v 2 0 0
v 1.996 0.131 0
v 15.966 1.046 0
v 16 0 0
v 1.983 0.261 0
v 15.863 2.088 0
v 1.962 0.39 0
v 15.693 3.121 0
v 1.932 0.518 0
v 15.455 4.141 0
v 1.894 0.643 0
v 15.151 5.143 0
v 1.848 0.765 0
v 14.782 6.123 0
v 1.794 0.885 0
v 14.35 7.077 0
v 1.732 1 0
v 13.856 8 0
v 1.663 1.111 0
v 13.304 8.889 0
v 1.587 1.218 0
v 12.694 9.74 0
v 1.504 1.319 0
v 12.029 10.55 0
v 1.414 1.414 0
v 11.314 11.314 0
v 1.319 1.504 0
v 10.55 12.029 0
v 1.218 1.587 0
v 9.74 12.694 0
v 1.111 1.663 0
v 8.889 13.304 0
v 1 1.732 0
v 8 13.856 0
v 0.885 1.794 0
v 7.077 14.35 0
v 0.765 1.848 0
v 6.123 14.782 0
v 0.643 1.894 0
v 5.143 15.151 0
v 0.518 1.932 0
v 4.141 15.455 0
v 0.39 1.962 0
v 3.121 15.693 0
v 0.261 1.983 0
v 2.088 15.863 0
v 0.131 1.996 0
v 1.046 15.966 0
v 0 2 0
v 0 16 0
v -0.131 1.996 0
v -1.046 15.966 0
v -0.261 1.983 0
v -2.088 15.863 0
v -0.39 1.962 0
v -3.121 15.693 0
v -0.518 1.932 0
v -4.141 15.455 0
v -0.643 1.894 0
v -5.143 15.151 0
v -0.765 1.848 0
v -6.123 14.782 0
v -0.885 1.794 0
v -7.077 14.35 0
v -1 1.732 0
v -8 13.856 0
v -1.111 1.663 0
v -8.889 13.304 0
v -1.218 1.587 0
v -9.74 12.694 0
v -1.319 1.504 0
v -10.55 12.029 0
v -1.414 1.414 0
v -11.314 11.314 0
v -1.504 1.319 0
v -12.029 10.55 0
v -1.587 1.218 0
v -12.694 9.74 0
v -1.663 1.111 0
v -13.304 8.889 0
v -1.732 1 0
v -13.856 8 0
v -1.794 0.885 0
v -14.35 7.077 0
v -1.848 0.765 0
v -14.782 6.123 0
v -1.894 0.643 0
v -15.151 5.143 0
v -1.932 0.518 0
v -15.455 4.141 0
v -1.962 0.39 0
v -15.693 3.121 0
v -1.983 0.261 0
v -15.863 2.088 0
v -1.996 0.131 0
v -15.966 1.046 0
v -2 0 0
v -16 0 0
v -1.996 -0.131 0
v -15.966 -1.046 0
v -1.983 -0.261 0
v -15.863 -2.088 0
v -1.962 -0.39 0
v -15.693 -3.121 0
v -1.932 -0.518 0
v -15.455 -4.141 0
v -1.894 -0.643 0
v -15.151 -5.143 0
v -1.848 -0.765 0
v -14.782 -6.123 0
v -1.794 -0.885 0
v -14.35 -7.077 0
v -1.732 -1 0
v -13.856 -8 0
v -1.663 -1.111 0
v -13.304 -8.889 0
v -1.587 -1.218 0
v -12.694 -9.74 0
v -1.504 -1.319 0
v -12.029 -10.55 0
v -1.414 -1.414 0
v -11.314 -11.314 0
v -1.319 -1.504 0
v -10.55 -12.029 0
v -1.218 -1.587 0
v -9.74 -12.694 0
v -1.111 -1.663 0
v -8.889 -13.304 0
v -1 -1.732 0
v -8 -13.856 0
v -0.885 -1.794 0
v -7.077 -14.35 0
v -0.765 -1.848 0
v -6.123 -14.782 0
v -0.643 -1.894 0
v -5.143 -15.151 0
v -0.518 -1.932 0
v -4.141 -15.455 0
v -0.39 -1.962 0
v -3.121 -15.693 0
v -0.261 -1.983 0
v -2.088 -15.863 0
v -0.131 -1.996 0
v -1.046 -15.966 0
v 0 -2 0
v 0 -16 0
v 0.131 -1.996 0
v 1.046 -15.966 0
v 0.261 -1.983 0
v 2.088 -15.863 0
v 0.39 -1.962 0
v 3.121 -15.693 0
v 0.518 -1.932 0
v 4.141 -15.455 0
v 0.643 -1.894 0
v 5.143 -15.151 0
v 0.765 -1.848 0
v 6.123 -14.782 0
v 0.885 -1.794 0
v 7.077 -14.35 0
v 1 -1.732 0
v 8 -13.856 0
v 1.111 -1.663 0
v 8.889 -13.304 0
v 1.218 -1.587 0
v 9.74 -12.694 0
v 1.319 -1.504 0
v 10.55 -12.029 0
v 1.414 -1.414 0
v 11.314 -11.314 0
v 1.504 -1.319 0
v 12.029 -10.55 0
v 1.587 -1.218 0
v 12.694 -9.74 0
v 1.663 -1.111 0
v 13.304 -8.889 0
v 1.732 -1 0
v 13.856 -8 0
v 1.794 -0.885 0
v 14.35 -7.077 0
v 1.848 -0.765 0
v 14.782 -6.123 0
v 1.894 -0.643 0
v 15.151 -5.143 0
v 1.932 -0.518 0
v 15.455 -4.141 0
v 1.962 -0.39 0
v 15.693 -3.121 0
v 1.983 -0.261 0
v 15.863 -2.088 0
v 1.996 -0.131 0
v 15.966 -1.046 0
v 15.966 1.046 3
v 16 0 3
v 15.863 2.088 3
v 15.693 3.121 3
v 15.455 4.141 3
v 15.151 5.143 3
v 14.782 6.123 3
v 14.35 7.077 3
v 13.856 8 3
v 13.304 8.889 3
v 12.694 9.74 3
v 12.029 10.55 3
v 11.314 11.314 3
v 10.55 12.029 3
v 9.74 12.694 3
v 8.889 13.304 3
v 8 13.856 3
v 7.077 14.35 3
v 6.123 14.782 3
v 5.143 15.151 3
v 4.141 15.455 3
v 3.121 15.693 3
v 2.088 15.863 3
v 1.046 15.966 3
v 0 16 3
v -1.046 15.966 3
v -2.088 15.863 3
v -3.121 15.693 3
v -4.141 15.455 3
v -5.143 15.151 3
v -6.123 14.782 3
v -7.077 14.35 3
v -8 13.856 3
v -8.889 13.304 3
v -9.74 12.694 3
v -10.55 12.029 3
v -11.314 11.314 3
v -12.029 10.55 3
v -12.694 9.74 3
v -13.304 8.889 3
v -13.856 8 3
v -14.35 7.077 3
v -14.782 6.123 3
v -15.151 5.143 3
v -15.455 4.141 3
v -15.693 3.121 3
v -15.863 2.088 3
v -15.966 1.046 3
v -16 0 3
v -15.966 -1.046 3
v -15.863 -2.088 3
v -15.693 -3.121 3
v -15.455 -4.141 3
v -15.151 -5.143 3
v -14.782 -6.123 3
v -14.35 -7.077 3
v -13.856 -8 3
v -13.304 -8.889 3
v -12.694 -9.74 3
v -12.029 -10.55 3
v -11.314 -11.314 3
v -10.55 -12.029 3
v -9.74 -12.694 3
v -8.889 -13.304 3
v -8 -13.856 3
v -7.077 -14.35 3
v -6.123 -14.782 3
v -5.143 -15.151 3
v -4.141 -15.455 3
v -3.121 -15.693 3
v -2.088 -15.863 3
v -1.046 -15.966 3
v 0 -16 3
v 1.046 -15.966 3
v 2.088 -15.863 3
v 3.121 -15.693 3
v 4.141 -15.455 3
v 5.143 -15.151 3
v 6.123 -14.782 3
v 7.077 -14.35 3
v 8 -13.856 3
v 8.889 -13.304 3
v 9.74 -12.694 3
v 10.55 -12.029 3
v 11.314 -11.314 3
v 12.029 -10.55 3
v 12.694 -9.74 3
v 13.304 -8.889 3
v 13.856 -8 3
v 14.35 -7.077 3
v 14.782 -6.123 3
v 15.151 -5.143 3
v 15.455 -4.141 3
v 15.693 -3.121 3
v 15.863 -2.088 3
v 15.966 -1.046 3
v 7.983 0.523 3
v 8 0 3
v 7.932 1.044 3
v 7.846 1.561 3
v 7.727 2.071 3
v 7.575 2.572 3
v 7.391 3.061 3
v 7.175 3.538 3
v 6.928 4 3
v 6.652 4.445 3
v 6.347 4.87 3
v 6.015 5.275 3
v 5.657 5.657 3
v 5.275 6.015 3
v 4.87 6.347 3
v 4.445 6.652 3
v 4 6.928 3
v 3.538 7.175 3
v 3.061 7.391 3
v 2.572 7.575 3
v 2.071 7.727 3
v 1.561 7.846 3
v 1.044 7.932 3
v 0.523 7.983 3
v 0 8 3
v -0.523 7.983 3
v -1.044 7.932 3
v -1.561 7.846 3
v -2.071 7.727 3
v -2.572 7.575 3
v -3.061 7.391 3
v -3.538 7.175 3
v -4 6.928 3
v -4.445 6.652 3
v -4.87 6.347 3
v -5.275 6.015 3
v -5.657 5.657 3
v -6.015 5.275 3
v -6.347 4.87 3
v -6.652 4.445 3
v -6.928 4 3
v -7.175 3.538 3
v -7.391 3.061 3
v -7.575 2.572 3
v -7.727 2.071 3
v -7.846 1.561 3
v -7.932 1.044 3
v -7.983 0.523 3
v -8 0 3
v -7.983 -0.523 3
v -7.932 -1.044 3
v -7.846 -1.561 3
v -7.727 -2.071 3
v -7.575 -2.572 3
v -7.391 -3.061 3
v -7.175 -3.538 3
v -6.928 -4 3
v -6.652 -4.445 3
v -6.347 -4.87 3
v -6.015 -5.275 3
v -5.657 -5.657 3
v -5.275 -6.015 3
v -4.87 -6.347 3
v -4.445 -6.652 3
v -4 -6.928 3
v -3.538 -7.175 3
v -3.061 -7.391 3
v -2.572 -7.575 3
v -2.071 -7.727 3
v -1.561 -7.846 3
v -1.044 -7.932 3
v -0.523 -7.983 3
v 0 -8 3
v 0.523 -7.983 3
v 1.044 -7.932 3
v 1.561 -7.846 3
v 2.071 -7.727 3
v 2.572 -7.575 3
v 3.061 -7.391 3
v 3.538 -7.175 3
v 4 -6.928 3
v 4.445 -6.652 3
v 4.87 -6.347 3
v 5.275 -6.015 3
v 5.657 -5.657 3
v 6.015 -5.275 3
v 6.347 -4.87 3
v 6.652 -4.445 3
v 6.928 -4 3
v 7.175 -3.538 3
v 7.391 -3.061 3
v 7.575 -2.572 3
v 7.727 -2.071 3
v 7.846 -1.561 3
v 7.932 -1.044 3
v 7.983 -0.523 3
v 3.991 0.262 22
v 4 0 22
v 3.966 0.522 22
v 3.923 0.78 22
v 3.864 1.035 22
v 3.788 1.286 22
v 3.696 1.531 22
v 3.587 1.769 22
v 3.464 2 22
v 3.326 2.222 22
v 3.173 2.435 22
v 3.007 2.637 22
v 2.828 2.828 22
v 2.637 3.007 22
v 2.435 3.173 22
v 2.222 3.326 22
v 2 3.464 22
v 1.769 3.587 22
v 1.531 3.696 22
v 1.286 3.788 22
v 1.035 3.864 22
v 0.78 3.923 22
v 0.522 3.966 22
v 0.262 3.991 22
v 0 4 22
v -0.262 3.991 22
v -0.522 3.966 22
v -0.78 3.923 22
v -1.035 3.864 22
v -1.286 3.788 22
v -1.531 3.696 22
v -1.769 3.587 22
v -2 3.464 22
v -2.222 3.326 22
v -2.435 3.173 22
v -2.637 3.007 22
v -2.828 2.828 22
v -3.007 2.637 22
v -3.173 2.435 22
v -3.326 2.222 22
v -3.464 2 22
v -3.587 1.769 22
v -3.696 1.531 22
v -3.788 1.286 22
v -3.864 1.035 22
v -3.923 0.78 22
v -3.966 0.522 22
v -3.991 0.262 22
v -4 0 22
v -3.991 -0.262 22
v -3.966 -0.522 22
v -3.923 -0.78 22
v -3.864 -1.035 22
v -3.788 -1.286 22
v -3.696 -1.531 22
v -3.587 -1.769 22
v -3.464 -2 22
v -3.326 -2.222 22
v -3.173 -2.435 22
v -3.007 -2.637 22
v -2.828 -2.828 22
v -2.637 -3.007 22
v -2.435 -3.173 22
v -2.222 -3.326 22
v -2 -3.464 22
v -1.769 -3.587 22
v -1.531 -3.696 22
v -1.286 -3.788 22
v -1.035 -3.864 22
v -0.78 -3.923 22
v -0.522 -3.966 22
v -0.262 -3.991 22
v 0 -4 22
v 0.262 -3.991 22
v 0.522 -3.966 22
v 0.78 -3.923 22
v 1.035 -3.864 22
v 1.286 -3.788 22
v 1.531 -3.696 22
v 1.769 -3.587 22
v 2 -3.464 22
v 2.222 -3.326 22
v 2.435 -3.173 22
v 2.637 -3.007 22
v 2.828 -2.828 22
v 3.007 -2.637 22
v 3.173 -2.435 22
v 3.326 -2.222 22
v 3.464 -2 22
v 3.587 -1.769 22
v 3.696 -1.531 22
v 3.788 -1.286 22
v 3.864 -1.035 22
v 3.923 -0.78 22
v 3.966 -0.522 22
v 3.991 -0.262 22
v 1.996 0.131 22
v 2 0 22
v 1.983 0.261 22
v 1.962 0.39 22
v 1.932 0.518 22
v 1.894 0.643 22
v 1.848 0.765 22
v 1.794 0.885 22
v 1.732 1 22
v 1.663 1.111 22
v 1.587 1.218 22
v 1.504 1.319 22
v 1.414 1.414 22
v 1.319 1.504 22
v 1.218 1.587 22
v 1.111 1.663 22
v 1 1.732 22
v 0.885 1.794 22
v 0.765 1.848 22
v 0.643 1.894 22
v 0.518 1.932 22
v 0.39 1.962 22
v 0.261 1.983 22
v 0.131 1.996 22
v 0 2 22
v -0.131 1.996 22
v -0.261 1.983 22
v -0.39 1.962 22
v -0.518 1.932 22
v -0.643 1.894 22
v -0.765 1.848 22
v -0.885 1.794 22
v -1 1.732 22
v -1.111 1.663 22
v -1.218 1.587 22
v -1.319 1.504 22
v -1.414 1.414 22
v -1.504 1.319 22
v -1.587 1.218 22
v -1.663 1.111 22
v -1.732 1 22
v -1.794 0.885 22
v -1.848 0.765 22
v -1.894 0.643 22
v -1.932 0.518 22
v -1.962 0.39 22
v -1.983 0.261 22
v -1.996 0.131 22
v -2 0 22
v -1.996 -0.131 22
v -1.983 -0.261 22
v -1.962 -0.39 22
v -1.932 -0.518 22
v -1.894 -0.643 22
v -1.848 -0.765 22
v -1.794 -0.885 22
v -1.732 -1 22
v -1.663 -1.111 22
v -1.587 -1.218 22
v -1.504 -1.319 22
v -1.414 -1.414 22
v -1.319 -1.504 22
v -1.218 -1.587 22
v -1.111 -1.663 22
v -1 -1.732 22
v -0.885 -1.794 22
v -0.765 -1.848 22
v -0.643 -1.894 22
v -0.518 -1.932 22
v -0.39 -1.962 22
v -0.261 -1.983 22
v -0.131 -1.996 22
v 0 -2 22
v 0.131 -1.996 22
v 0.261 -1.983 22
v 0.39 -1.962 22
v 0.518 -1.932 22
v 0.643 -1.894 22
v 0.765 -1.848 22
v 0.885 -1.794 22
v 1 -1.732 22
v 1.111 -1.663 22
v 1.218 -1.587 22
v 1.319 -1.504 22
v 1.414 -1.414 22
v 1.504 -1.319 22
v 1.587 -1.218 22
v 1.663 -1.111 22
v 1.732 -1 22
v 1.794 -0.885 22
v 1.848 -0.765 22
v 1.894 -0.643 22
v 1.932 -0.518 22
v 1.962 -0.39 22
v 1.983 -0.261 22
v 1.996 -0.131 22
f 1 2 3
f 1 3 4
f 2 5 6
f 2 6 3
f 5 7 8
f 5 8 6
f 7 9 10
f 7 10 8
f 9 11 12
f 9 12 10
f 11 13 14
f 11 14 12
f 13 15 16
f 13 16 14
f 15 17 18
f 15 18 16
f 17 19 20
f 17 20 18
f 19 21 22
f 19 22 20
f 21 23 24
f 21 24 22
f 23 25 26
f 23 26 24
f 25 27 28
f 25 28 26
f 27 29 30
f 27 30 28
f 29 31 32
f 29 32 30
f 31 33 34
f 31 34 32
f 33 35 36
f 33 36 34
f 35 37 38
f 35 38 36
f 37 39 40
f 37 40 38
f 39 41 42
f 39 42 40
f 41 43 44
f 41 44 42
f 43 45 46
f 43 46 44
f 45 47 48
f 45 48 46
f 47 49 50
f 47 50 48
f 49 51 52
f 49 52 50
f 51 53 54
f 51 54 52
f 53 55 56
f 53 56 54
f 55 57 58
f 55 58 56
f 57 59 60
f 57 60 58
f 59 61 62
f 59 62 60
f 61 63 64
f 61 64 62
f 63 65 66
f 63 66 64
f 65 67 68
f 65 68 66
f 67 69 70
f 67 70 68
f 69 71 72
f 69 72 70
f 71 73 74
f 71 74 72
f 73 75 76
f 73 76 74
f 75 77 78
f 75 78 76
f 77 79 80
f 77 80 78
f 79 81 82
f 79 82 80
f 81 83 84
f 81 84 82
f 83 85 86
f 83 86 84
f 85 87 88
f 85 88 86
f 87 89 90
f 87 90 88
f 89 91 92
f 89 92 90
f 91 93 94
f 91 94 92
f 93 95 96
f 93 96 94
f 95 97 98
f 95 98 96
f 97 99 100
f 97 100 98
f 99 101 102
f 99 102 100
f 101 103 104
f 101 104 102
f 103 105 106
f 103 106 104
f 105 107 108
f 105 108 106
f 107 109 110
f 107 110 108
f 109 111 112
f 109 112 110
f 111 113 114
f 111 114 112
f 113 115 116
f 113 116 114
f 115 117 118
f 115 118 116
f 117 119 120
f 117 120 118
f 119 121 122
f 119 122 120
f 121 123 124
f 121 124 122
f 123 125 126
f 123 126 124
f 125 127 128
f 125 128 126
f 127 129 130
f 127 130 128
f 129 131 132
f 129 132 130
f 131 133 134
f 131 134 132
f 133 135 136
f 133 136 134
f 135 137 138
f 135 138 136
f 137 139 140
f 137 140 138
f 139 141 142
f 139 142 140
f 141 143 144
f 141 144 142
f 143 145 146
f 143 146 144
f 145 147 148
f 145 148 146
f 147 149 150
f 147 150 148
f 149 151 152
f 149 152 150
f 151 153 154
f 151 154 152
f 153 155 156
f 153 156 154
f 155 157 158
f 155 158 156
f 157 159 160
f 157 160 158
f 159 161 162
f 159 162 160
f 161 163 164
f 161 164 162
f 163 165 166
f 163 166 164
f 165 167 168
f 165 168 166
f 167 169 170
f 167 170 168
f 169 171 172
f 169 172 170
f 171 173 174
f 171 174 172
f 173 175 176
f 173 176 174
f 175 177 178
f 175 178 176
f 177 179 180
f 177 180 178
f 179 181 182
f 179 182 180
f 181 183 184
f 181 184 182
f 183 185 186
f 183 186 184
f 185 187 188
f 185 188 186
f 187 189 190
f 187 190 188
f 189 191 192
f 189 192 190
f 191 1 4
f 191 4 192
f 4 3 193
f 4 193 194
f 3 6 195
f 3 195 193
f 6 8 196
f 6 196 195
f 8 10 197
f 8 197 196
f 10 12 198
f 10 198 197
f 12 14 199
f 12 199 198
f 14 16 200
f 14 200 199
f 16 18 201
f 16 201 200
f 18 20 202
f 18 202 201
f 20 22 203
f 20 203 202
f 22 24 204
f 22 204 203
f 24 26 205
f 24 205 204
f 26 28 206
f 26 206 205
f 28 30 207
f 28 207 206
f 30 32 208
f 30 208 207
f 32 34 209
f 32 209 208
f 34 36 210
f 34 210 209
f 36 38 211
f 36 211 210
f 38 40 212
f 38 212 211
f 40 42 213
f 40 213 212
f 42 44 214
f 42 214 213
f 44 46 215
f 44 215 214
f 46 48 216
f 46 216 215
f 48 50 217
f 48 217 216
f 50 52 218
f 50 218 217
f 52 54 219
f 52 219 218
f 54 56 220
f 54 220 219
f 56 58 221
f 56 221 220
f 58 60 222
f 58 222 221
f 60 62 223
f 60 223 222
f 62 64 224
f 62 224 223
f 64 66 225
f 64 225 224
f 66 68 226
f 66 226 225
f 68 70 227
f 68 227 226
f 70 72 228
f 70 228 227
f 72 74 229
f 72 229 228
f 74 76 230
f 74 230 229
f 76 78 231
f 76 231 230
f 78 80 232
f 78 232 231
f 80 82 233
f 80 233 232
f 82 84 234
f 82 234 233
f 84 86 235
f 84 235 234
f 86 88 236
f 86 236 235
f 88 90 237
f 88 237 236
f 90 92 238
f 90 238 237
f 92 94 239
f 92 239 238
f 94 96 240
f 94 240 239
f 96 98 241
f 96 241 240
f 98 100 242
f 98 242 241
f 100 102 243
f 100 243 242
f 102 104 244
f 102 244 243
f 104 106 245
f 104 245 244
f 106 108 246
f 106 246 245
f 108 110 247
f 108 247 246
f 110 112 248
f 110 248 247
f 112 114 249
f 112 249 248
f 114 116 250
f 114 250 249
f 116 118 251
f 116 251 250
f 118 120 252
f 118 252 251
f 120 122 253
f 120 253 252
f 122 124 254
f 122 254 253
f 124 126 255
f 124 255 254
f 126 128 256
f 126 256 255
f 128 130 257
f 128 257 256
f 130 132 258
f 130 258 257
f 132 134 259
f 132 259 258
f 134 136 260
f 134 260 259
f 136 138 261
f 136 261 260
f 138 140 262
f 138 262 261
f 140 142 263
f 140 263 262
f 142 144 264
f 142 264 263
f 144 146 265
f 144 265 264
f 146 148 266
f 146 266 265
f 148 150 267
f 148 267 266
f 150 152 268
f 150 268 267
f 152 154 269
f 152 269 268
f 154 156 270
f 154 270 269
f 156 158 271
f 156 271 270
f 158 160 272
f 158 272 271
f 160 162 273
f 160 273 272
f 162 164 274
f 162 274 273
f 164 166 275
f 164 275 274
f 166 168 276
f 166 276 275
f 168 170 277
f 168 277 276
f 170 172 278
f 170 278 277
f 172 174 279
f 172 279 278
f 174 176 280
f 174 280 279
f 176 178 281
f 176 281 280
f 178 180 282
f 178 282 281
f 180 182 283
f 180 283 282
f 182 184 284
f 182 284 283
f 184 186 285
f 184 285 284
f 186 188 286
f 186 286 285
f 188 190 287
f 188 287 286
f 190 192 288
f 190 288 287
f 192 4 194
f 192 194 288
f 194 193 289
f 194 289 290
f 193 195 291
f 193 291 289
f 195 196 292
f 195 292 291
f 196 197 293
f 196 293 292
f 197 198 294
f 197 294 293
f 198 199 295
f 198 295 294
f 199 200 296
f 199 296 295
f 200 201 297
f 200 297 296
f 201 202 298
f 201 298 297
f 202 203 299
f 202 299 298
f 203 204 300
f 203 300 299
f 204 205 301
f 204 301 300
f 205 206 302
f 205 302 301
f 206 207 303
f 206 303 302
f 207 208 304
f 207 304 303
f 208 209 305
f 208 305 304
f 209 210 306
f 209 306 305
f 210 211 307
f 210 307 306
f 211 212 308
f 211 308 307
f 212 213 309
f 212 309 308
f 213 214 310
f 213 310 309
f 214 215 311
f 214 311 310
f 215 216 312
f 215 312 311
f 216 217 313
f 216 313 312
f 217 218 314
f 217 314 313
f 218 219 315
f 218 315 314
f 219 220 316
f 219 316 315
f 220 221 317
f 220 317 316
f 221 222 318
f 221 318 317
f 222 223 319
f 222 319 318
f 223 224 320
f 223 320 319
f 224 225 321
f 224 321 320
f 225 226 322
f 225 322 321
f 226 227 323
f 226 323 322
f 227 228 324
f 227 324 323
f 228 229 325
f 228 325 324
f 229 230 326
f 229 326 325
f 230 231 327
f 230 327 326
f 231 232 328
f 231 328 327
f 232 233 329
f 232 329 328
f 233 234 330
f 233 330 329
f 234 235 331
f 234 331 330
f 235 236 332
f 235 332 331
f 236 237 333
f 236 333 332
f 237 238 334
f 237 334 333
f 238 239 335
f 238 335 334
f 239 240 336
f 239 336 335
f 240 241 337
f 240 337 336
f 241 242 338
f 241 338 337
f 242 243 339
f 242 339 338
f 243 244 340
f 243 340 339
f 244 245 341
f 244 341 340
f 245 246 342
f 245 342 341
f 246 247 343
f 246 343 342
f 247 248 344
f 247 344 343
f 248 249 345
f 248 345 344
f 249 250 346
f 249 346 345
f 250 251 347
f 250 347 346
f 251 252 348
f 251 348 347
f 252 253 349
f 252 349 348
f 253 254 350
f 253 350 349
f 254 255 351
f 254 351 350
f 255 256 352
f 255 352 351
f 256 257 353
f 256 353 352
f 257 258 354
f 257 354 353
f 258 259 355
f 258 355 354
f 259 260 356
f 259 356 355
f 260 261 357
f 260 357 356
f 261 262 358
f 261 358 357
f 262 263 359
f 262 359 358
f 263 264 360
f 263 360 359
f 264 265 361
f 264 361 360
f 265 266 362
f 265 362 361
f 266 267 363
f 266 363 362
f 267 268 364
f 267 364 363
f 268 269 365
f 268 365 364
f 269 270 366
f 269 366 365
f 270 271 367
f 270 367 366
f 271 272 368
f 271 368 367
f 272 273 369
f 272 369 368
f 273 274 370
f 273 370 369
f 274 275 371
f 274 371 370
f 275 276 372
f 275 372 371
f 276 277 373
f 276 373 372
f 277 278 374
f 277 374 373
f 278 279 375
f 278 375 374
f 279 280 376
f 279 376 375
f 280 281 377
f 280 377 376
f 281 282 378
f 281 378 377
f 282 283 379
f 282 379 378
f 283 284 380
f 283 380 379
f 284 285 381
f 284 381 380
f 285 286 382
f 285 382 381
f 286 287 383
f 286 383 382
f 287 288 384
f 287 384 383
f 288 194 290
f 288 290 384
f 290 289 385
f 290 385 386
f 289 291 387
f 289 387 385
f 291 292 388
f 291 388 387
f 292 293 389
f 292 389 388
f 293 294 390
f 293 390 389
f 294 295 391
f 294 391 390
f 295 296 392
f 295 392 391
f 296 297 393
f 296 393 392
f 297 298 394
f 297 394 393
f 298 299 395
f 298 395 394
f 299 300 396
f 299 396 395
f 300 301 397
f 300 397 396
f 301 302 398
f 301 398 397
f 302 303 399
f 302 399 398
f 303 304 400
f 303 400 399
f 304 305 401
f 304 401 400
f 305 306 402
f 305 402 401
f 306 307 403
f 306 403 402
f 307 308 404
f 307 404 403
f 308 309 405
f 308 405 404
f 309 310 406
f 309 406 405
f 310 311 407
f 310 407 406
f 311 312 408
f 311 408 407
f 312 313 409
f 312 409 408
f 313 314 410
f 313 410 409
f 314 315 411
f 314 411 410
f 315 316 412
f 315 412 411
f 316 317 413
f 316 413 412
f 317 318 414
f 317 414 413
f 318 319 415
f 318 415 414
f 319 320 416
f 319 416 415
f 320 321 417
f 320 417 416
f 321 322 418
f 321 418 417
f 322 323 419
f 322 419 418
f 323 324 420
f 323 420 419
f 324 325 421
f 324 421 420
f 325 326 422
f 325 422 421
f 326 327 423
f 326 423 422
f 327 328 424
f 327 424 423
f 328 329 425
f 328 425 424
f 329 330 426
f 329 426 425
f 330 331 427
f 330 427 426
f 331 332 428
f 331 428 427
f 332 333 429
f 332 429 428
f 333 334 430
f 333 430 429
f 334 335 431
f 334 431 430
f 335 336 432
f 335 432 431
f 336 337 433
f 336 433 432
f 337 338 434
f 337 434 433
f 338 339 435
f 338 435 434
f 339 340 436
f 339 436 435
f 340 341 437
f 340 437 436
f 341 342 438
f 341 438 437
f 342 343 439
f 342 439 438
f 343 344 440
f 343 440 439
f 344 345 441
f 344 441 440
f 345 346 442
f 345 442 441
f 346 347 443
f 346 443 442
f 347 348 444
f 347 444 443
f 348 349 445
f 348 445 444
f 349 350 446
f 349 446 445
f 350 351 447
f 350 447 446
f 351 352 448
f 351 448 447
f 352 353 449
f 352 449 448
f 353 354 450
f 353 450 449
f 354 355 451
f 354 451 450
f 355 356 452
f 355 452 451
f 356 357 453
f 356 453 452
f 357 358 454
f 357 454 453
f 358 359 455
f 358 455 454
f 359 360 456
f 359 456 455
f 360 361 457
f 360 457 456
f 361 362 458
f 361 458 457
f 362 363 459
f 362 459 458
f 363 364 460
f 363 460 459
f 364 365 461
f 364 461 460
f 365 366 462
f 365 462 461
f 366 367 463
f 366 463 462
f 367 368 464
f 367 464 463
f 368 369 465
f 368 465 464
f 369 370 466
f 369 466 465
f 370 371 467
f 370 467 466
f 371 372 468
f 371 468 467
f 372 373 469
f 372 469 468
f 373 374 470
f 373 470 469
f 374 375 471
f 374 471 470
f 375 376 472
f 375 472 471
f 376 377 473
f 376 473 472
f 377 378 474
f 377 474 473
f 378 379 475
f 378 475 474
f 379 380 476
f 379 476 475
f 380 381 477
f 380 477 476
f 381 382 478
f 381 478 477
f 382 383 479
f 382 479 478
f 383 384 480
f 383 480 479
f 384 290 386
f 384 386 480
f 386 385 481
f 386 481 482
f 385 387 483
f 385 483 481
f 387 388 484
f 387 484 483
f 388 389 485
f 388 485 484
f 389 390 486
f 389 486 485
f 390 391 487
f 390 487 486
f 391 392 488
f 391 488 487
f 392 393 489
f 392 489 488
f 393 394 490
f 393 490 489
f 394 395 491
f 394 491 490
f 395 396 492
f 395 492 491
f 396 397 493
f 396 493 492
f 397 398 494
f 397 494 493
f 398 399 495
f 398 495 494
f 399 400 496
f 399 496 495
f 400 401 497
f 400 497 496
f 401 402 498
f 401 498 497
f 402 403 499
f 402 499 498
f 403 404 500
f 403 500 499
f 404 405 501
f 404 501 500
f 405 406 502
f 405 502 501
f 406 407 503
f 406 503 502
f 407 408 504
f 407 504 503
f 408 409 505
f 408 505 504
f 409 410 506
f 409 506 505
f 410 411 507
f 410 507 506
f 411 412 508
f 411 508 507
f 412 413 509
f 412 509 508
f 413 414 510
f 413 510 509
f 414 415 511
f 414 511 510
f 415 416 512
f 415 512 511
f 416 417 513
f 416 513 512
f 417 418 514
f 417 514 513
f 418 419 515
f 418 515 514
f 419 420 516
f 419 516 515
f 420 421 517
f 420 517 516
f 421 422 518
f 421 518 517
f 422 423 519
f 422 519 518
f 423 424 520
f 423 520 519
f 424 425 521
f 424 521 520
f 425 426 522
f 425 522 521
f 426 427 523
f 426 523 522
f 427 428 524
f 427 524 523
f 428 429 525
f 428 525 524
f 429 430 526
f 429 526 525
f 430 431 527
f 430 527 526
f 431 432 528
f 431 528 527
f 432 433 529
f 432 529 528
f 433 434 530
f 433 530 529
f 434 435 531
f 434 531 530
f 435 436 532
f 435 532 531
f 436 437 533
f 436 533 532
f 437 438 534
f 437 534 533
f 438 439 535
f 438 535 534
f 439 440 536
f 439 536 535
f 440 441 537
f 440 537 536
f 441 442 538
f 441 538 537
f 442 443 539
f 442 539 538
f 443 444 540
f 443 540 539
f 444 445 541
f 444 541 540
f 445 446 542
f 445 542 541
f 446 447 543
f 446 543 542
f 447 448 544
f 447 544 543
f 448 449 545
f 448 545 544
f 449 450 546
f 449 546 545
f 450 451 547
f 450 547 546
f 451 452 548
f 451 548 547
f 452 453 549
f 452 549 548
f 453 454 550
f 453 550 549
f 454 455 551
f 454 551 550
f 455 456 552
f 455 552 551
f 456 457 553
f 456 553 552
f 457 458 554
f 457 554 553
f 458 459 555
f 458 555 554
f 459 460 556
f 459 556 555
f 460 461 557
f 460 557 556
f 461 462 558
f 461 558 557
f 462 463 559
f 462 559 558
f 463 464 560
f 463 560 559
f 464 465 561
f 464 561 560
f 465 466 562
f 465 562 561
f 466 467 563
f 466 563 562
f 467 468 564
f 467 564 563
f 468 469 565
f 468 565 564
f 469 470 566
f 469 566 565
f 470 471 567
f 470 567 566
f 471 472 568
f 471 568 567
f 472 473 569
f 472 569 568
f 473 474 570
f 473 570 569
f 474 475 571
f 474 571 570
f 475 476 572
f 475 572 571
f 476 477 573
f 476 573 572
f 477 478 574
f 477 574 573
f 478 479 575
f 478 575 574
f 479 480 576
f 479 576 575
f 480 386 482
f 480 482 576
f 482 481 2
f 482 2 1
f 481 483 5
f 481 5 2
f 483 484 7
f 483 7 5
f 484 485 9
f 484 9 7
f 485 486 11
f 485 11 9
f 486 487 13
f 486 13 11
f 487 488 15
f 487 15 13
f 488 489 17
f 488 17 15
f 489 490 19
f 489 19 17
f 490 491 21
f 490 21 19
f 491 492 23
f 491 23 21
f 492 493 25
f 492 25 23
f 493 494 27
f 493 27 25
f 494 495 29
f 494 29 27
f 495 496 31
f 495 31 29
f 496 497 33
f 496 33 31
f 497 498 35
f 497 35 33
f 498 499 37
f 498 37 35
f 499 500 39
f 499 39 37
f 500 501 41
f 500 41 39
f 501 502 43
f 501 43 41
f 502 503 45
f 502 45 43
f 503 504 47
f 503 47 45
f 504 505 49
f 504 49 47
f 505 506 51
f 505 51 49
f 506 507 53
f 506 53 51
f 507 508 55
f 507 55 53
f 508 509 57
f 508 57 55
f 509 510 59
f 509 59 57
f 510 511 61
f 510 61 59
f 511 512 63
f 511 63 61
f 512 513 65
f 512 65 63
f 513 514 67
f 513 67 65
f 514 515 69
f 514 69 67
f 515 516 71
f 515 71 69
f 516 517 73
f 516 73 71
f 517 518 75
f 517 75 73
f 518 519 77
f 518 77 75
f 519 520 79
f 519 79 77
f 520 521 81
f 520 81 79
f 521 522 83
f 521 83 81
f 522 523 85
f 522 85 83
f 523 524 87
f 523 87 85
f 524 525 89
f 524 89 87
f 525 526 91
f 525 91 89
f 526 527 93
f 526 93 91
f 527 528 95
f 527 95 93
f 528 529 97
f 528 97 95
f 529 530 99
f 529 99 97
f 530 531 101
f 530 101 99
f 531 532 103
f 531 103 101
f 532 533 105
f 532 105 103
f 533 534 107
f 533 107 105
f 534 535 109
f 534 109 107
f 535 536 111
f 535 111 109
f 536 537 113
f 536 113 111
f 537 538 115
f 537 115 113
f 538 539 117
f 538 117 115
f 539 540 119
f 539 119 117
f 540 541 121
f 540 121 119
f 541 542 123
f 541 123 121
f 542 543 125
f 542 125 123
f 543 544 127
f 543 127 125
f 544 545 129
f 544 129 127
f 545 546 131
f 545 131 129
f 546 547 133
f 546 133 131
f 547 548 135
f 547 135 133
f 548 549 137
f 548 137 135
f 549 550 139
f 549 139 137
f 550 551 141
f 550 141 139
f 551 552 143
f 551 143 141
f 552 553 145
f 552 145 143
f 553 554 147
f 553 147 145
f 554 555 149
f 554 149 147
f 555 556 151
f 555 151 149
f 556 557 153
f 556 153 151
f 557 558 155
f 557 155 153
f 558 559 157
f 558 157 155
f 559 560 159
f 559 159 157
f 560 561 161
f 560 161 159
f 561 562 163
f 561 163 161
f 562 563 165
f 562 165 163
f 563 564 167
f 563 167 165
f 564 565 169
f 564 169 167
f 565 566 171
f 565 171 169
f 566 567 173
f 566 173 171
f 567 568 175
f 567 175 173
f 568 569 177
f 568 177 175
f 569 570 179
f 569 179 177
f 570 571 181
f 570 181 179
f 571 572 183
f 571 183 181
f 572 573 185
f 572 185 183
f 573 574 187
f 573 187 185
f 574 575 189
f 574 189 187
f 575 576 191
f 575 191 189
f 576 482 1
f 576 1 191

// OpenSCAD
// Original MechIntel educational model. CC0-1.0. Units: mm.
// Not a standardized or load-rated component.
$fn=96;
// Section points: [radius, height], mm. Edit to change the profile.
section=[[2, 0], [16, 0], [16, 3], [8, 3], [4, 22], [2, 22]];
rotate_extrude($fn=96) polygon(points=section);
